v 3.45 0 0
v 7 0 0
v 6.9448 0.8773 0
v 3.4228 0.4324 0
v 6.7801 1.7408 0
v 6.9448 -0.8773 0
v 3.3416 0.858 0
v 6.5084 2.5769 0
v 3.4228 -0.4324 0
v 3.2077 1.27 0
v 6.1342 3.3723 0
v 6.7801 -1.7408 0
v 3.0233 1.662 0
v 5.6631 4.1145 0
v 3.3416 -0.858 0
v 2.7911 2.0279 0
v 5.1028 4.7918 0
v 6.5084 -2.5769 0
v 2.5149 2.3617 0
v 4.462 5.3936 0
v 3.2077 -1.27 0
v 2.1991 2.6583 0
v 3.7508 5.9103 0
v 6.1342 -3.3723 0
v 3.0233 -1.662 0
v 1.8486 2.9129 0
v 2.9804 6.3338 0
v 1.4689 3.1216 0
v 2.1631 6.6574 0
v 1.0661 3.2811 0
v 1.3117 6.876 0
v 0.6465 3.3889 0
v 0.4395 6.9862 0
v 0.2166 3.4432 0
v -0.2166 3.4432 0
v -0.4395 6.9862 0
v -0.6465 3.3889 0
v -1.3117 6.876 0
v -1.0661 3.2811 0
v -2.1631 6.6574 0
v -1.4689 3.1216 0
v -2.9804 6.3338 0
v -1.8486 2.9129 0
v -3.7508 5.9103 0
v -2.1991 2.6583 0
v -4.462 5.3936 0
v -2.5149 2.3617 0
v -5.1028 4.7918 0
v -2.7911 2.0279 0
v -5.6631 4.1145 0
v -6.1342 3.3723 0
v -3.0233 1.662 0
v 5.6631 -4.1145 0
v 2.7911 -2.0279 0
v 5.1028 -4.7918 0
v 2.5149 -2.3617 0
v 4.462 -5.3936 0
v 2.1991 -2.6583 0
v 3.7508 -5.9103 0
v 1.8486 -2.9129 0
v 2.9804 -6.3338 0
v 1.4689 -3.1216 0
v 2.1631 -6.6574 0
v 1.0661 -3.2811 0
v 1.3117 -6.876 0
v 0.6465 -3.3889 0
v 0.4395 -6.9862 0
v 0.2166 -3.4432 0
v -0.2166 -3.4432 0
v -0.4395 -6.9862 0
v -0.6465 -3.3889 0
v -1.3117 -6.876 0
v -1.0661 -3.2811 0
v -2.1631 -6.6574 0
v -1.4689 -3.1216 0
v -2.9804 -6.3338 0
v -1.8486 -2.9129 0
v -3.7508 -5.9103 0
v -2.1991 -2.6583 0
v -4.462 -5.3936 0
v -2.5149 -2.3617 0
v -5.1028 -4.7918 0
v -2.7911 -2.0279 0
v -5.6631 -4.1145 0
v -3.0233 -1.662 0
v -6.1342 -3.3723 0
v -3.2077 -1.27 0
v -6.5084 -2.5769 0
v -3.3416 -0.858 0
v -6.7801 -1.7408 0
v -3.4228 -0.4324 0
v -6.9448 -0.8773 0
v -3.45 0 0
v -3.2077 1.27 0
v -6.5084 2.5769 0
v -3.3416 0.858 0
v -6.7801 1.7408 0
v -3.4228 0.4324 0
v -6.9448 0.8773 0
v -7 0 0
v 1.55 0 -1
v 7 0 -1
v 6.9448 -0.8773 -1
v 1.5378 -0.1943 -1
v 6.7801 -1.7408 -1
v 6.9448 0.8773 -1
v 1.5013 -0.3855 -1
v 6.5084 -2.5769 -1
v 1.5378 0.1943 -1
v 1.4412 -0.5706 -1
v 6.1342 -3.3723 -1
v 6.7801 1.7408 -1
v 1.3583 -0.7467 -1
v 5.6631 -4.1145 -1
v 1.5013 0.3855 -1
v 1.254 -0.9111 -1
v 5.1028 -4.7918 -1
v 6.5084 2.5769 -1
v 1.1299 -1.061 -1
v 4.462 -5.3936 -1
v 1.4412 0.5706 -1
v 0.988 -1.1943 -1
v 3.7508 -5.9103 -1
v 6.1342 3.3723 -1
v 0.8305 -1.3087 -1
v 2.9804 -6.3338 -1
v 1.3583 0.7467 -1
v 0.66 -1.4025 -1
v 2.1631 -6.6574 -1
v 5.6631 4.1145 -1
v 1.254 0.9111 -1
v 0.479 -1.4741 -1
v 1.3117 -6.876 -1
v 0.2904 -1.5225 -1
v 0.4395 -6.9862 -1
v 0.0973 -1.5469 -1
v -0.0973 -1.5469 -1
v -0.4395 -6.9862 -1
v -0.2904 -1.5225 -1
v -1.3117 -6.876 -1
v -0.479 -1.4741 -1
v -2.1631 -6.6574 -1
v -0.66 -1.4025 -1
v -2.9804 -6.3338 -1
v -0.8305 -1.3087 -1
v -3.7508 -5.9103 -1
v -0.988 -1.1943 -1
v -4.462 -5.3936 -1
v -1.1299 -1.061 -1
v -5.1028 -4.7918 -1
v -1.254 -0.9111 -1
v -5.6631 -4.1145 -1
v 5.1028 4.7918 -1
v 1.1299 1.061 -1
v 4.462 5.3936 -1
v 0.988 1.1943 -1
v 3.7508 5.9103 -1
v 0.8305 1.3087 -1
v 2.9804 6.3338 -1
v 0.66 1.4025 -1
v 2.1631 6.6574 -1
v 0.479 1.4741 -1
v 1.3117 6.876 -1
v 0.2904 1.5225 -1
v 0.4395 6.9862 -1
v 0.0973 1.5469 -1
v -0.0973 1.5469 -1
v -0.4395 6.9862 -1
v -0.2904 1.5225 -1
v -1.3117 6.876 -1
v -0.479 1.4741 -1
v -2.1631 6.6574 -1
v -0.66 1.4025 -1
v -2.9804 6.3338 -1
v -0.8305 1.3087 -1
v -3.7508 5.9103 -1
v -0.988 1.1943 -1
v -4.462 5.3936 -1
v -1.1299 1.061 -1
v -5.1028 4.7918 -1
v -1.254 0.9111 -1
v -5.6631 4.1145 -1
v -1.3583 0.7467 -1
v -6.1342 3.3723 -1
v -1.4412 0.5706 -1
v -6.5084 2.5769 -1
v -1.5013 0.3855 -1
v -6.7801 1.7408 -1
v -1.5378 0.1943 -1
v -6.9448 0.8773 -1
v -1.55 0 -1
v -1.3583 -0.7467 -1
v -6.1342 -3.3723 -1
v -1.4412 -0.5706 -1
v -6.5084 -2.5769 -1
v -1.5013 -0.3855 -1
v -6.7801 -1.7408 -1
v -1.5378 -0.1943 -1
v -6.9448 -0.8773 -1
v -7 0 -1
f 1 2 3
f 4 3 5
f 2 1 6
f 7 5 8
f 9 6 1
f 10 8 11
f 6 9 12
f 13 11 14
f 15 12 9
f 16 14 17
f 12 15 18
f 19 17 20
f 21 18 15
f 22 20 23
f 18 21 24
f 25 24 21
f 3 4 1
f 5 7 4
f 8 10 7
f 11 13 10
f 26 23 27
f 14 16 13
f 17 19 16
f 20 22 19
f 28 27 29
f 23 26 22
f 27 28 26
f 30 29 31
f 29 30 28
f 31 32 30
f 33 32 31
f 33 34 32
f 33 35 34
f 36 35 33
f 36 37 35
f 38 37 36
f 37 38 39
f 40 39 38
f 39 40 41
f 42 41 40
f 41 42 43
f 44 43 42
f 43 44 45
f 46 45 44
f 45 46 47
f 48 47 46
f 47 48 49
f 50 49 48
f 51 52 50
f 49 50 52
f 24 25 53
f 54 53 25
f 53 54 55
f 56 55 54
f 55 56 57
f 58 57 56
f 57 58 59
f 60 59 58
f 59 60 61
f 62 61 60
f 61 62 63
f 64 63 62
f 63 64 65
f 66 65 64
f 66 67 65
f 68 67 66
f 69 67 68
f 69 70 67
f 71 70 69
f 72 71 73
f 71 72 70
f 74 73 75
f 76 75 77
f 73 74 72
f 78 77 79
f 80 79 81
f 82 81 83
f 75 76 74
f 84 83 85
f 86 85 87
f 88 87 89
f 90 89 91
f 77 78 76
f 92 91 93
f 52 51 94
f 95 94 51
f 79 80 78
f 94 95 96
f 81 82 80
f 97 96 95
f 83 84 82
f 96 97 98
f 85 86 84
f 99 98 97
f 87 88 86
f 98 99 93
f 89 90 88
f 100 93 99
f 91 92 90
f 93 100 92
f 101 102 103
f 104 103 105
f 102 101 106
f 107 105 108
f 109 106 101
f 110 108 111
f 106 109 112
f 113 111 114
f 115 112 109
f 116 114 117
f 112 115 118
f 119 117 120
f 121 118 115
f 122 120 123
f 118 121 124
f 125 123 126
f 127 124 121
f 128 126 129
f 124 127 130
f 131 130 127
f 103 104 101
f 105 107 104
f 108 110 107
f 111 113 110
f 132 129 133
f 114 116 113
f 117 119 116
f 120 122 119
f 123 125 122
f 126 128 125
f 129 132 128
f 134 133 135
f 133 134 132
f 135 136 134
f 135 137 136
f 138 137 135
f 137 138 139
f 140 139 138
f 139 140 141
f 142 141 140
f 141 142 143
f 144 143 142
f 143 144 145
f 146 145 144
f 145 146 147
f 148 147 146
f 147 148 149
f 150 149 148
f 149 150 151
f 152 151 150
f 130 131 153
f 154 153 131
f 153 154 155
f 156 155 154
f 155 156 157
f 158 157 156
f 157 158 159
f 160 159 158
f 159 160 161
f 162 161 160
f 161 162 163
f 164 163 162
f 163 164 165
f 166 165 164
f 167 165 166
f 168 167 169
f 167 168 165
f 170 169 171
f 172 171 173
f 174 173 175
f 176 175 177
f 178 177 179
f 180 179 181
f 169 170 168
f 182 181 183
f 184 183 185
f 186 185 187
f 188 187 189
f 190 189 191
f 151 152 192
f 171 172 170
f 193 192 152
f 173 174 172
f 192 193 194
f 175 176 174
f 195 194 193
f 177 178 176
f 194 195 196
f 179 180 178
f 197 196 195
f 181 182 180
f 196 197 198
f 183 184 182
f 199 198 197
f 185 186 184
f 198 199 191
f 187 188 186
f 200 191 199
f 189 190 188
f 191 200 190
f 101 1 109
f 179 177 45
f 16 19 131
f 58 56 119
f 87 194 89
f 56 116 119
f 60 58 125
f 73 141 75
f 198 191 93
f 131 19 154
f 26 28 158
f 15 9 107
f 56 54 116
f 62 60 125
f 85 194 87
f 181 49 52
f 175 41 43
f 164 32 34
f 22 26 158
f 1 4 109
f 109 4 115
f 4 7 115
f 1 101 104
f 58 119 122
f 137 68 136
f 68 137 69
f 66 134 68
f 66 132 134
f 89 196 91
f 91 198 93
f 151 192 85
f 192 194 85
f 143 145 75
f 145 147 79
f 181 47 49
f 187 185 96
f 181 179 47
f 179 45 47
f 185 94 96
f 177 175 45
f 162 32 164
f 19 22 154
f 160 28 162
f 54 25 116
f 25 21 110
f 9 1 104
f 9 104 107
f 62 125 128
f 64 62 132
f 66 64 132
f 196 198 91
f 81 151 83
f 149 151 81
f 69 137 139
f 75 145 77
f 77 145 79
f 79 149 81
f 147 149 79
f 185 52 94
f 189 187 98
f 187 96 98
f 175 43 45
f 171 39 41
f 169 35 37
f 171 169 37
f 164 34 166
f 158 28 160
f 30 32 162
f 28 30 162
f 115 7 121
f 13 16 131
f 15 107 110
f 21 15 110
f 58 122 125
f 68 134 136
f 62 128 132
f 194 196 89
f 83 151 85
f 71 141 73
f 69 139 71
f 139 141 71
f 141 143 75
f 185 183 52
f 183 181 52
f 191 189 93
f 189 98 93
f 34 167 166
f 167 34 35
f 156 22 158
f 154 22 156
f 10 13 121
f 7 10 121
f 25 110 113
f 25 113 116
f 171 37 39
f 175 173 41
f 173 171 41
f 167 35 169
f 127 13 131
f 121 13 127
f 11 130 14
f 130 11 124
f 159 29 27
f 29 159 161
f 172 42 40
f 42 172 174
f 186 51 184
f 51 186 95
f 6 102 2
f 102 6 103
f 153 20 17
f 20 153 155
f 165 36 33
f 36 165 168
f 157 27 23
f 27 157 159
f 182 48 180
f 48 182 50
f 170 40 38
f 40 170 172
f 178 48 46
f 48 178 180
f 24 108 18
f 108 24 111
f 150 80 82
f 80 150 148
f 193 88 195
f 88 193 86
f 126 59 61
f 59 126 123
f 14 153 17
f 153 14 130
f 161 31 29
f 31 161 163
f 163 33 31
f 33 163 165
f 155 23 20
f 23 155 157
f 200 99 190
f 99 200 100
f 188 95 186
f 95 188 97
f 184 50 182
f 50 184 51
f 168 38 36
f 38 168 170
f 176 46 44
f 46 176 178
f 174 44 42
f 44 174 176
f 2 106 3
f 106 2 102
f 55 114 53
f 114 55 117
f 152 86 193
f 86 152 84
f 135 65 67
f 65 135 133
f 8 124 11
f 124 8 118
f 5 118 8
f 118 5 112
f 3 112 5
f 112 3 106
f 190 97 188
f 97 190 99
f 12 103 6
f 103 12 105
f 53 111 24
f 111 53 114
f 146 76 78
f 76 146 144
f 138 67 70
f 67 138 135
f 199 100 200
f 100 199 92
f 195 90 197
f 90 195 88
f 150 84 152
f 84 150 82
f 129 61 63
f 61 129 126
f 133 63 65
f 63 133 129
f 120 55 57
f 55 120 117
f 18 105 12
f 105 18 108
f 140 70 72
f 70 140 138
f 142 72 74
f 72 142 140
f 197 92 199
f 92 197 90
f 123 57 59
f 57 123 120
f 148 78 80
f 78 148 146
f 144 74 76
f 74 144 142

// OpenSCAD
$fn = 50;


difference() {
	union() {
		translate(v = [0, 0, -1.0000000000]) {
			cylinder(h = 1.0000000000, r = 7.0000000000);
		}
	}
	union() {
		translate(v = [0, 0, 0]) {
			rotate(a = [0, 0, 0]) {
				difference() {
					union() {
						#translate(v = [0, 0, -1.0000000000]) {
							cylinder(h = 1.0000000000, r = 1.2500000000);
						}
						#translate(v = [0, 0, -1.0000000000]) {
							cylinder(h = 1.0000000000, r1 = 1.5500000000, r2 = 3.4500000000);
						}
						#translate(v = [0, 0, -1.0000000000]) {
							cylinder(h = 1.0000000000, r = 1.5500000000);
						}
						#translate(v = [0, 0, -1.0000000000]) {
							cylinder(h = 1.0000000000, r = 1.2500000000);
						}
					}
					union();
				}
			}
		}
	}
}
